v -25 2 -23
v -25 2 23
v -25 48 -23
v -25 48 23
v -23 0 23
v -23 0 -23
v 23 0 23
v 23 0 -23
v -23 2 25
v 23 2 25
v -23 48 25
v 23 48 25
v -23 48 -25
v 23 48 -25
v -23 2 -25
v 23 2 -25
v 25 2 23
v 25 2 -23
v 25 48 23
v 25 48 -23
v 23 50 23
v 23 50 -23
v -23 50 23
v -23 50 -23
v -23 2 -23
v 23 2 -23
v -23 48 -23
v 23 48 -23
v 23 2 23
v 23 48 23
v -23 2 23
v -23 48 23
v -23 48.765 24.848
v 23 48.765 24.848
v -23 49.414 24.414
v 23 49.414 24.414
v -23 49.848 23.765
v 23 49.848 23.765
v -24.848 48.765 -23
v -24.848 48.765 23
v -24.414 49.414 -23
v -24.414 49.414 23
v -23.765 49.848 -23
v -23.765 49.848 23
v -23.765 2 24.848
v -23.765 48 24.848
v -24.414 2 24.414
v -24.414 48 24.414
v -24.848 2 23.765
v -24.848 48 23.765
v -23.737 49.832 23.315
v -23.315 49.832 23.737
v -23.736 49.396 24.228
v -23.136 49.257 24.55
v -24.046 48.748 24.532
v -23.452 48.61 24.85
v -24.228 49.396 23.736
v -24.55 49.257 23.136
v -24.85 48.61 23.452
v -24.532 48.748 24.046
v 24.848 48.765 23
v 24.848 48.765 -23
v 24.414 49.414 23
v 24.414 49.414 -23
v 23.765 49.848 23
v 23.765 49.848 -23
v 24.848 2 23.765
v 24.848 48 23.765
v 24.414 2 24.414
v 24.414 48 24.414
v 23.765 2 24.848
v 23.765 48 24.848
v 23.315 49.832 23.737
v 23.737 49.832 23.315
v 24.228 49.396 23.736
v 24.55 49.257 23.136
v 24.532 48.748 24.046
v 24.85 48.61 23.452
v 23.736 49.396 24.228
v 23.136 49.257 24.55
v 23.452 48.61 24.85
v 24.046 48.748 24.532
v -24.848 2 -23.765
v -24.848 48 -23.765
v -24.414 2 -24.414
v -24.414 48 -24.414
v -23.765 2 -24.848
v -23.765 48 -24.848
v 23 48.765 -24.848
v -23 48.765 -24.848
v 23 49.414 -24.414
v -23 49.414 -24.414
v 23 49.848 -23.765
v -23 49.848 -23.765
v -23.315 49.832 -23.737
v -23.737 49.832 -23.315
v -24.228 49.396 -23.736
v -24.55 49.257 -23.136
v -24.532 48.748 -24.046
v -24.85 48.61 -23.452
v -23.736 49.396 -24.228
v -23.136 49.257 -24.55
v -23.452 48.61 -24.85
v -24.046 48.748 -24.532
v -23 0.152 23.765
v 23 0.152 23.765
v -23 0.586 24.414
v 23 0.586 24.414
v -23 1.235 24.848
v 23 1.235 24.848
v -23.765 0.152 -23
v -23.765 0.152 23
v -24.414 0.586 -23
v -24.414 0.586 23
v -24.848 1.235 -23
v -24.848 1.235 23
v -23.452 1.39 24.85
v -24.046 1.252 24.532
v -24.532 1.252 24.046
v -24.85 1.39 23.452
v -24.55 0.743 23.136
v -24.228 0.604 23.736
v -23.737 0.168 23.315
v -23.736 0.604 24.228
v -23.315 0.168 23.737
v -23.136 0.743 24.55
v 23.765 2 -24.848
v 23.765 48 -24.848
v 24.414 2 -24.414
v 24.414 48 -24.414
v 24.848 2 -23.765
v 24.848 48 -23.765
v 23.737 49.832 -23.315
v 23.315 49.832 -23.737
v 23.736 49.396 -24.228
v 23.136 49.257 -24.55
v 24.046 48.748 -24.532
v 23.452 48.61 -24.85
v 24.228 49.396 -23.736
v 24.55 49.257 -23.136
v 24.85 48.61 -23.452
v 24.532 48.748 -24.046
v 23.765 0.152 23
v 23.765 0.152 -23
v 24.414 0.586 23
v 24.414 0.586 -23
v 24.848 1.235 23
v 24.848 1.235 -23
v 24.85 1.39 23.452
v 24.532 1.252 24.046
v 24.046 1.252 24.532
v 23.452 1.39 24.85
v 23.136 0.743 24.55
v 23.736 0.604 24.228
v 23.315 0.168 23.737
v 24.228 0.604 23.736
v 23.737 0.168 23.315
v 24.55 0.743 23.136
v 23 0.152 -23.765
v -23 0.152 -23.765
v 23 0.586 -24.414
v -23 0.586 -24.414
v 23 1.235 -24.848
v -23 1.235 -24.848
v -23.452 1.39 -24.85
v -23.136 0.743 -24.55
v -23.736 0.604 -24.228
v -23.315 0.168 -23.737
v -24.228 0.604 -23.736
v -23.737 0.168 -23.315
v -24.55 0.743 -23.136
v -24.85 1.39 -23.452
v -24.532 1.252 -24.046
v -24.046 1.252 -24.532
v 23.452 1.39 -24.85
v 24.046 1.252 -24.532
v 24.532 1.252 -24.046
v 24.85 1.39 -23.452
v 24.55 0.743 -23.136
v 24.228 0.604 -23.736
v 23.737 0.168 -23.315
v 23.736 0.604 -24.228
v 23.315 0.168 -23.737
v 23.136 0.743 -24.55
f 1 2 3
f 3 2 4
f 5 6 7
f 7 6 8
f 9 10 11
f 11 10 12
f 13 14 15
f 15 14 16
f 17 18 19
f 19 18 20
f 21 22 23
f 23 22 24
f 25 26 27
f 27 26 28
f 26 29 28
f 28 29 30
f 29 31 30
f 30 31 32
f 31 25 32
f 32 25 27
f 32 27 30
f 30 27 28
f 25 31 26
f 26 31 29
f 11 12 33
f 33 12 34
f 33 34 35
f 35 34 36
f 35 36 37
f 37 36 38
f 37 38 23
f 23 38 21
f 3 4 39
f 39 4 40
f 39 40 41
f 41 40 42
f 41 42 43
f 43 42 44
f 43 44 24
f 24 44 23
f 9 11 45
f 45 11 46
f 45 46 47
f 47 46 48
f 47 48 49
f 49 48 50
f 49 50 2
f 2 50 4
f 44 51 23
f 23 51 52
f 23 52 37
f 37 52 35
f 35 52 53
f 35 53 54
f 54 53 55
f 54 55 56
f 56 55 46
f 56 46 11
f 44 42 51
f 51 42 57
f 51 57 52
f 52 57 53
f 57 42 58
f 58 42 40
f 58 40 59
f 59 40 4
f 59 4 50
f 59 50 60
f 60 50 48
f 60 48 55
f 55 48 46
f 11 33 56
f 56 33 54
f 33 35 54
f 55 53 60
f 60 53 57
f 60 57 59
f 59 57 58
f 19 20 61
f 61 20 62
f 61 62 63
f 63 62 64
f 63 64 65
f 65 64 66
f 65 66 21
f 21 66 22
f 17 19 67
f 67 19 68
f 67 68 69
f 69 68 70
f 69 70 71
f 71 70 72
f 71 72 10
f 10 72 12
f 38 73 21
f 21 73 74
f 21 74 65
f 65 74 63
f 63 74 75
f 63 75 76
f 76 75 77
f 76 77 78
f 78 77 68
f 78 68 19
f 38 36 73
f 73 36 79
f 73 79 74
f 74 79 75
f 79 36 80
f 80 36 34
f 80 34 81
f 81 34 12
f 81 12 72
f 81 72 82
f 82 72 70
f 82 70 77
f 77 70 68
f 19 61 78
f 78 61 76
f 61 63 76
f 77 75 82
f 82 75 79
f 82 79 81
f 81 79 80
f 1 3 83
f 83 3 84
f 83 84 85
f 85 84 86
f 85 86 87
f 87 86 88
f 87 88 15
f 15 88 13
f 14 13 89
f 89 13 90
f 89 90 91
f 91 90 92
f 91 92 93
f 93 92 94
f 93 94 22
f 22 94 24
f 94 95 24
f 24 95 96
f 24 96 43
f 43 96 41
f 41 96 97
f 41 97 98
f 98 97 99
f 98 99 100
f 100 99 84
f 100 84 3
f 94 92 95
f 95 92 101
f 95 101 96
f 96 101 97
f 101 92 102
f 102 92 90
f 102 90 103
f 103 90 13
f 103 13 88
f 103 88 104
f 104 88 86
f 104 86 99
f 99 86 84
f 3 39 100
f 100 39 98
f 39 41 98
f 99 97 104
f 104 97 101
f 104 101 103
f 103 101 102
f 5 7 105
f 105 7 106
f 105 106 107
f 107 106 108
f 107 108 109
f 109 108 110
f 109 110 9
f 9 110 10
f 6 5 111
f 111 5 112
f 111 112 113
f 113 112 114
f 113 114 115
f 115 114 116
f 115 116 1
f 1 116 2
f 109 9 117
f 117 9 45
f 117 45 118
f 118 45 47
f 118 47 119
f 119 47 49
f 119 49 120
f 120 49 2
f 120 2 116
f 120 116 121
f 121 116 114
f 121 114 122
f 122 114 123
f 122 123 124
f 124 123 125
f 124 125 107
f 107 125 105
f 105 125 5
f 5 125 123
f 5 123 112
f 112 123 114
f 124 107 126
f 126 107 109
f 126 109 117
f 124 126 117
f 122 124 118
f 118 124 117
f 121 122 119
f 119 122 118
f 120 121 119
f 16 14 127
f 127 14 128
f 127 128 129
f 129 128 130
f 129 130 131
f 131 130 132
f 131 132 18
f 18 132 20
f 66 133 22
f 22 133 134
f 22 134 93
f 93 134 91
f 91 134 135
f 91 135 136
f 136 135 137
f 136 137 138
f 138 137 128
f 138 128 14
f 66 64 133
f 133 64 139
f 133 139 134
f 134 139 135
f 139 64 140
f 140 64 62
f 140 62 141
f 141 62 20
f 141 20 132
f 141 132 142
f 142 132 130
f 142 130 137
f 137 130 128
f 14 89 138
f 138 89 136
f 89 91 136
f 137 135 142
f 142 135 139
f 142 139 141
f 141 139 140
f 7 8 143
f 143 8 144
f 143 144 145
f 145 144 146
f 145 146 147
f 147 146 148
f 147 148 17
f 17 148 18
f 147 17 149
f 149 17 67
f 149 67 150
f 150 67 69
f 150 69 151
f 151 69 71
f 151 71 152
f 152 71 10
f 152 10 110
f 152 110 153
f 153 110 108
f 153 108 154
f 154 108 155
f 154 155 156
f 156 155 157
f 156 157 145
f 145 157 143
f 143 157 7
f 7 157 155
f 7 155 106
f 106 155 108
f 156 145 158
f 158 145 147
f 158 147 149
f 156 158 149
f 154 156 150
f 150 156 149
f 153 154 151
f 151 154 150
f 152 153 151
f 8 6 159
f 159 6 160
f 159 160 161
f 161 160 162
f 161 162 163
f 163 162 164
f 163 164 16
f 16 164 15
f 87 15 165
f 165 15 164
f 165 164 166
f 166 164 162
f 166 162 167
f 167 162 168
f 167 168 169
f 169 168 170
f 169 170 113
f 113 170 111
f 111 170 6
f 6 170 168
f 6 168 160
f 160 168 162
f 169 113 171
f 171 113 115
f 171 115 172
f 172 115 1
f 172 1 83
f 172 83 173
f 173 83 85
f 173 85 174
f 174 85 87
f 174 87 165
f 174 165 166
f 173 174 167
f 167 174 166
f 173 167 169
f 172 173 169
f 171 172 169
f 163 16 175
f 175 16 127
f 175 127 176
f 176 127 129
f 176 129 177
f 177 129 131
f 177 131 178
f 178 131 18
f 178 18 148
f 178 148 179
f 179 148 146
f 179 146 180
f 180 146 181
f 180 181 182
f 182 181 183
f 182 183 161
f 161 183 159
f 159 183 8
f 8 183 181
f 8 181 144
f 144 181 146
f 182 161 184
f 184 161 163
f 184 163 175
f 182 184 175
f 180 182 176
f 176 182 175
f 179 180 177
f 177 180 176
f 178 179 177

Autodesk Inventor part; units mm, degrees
ref_plane "YZ Plane" through (0, 0, 0) normal (1, 0, 0) x (0, 1, 0)
ref_plane "XZ Plane" through (0, 0, 0) normal (0, 1, 0) x (-1, 0, 0)
ref_plane "XY Plane" through (0, 0, 0) normal (0, 0, 1) x (1, 0, 0)
sketch "Sketch1" plane through (0, 0, 0) normal (0, 1, 0) x (-1, 0, 0)
  line L0 (-25, -25) -> (25, -25)
  line L1 (25, -25) -> (25, 25)
  line L2 (25, 25) -> (-25, 25)
  line L3 (-25, 25) -> (-25, -25)
  line L4 (-25, -25) -> (25, 25) construction
  line L5 (25, -25) -> (-25, 25) construction
  point P0 (0, 0)
  dimension "d0" = 50
  dimension "d1" = 50
extrude "Extrusion1" add sketch "Sketch1" along normal blind 50
shell "Shell1" thickness 2 removed faces 0
fillet "Fillet1" radius 2 12 edges at (0, 50, 25) (-25, 25, -25) (25, 50, 0) (0, 50, -25) (-25, 50, 0) (25, 25, 25) (-25, 25, 25) (25, 25, -25) (25, 0, 0) (0, 0, 25) (0, 0, -25) (-25, 0, 0)
properties part number "block"
